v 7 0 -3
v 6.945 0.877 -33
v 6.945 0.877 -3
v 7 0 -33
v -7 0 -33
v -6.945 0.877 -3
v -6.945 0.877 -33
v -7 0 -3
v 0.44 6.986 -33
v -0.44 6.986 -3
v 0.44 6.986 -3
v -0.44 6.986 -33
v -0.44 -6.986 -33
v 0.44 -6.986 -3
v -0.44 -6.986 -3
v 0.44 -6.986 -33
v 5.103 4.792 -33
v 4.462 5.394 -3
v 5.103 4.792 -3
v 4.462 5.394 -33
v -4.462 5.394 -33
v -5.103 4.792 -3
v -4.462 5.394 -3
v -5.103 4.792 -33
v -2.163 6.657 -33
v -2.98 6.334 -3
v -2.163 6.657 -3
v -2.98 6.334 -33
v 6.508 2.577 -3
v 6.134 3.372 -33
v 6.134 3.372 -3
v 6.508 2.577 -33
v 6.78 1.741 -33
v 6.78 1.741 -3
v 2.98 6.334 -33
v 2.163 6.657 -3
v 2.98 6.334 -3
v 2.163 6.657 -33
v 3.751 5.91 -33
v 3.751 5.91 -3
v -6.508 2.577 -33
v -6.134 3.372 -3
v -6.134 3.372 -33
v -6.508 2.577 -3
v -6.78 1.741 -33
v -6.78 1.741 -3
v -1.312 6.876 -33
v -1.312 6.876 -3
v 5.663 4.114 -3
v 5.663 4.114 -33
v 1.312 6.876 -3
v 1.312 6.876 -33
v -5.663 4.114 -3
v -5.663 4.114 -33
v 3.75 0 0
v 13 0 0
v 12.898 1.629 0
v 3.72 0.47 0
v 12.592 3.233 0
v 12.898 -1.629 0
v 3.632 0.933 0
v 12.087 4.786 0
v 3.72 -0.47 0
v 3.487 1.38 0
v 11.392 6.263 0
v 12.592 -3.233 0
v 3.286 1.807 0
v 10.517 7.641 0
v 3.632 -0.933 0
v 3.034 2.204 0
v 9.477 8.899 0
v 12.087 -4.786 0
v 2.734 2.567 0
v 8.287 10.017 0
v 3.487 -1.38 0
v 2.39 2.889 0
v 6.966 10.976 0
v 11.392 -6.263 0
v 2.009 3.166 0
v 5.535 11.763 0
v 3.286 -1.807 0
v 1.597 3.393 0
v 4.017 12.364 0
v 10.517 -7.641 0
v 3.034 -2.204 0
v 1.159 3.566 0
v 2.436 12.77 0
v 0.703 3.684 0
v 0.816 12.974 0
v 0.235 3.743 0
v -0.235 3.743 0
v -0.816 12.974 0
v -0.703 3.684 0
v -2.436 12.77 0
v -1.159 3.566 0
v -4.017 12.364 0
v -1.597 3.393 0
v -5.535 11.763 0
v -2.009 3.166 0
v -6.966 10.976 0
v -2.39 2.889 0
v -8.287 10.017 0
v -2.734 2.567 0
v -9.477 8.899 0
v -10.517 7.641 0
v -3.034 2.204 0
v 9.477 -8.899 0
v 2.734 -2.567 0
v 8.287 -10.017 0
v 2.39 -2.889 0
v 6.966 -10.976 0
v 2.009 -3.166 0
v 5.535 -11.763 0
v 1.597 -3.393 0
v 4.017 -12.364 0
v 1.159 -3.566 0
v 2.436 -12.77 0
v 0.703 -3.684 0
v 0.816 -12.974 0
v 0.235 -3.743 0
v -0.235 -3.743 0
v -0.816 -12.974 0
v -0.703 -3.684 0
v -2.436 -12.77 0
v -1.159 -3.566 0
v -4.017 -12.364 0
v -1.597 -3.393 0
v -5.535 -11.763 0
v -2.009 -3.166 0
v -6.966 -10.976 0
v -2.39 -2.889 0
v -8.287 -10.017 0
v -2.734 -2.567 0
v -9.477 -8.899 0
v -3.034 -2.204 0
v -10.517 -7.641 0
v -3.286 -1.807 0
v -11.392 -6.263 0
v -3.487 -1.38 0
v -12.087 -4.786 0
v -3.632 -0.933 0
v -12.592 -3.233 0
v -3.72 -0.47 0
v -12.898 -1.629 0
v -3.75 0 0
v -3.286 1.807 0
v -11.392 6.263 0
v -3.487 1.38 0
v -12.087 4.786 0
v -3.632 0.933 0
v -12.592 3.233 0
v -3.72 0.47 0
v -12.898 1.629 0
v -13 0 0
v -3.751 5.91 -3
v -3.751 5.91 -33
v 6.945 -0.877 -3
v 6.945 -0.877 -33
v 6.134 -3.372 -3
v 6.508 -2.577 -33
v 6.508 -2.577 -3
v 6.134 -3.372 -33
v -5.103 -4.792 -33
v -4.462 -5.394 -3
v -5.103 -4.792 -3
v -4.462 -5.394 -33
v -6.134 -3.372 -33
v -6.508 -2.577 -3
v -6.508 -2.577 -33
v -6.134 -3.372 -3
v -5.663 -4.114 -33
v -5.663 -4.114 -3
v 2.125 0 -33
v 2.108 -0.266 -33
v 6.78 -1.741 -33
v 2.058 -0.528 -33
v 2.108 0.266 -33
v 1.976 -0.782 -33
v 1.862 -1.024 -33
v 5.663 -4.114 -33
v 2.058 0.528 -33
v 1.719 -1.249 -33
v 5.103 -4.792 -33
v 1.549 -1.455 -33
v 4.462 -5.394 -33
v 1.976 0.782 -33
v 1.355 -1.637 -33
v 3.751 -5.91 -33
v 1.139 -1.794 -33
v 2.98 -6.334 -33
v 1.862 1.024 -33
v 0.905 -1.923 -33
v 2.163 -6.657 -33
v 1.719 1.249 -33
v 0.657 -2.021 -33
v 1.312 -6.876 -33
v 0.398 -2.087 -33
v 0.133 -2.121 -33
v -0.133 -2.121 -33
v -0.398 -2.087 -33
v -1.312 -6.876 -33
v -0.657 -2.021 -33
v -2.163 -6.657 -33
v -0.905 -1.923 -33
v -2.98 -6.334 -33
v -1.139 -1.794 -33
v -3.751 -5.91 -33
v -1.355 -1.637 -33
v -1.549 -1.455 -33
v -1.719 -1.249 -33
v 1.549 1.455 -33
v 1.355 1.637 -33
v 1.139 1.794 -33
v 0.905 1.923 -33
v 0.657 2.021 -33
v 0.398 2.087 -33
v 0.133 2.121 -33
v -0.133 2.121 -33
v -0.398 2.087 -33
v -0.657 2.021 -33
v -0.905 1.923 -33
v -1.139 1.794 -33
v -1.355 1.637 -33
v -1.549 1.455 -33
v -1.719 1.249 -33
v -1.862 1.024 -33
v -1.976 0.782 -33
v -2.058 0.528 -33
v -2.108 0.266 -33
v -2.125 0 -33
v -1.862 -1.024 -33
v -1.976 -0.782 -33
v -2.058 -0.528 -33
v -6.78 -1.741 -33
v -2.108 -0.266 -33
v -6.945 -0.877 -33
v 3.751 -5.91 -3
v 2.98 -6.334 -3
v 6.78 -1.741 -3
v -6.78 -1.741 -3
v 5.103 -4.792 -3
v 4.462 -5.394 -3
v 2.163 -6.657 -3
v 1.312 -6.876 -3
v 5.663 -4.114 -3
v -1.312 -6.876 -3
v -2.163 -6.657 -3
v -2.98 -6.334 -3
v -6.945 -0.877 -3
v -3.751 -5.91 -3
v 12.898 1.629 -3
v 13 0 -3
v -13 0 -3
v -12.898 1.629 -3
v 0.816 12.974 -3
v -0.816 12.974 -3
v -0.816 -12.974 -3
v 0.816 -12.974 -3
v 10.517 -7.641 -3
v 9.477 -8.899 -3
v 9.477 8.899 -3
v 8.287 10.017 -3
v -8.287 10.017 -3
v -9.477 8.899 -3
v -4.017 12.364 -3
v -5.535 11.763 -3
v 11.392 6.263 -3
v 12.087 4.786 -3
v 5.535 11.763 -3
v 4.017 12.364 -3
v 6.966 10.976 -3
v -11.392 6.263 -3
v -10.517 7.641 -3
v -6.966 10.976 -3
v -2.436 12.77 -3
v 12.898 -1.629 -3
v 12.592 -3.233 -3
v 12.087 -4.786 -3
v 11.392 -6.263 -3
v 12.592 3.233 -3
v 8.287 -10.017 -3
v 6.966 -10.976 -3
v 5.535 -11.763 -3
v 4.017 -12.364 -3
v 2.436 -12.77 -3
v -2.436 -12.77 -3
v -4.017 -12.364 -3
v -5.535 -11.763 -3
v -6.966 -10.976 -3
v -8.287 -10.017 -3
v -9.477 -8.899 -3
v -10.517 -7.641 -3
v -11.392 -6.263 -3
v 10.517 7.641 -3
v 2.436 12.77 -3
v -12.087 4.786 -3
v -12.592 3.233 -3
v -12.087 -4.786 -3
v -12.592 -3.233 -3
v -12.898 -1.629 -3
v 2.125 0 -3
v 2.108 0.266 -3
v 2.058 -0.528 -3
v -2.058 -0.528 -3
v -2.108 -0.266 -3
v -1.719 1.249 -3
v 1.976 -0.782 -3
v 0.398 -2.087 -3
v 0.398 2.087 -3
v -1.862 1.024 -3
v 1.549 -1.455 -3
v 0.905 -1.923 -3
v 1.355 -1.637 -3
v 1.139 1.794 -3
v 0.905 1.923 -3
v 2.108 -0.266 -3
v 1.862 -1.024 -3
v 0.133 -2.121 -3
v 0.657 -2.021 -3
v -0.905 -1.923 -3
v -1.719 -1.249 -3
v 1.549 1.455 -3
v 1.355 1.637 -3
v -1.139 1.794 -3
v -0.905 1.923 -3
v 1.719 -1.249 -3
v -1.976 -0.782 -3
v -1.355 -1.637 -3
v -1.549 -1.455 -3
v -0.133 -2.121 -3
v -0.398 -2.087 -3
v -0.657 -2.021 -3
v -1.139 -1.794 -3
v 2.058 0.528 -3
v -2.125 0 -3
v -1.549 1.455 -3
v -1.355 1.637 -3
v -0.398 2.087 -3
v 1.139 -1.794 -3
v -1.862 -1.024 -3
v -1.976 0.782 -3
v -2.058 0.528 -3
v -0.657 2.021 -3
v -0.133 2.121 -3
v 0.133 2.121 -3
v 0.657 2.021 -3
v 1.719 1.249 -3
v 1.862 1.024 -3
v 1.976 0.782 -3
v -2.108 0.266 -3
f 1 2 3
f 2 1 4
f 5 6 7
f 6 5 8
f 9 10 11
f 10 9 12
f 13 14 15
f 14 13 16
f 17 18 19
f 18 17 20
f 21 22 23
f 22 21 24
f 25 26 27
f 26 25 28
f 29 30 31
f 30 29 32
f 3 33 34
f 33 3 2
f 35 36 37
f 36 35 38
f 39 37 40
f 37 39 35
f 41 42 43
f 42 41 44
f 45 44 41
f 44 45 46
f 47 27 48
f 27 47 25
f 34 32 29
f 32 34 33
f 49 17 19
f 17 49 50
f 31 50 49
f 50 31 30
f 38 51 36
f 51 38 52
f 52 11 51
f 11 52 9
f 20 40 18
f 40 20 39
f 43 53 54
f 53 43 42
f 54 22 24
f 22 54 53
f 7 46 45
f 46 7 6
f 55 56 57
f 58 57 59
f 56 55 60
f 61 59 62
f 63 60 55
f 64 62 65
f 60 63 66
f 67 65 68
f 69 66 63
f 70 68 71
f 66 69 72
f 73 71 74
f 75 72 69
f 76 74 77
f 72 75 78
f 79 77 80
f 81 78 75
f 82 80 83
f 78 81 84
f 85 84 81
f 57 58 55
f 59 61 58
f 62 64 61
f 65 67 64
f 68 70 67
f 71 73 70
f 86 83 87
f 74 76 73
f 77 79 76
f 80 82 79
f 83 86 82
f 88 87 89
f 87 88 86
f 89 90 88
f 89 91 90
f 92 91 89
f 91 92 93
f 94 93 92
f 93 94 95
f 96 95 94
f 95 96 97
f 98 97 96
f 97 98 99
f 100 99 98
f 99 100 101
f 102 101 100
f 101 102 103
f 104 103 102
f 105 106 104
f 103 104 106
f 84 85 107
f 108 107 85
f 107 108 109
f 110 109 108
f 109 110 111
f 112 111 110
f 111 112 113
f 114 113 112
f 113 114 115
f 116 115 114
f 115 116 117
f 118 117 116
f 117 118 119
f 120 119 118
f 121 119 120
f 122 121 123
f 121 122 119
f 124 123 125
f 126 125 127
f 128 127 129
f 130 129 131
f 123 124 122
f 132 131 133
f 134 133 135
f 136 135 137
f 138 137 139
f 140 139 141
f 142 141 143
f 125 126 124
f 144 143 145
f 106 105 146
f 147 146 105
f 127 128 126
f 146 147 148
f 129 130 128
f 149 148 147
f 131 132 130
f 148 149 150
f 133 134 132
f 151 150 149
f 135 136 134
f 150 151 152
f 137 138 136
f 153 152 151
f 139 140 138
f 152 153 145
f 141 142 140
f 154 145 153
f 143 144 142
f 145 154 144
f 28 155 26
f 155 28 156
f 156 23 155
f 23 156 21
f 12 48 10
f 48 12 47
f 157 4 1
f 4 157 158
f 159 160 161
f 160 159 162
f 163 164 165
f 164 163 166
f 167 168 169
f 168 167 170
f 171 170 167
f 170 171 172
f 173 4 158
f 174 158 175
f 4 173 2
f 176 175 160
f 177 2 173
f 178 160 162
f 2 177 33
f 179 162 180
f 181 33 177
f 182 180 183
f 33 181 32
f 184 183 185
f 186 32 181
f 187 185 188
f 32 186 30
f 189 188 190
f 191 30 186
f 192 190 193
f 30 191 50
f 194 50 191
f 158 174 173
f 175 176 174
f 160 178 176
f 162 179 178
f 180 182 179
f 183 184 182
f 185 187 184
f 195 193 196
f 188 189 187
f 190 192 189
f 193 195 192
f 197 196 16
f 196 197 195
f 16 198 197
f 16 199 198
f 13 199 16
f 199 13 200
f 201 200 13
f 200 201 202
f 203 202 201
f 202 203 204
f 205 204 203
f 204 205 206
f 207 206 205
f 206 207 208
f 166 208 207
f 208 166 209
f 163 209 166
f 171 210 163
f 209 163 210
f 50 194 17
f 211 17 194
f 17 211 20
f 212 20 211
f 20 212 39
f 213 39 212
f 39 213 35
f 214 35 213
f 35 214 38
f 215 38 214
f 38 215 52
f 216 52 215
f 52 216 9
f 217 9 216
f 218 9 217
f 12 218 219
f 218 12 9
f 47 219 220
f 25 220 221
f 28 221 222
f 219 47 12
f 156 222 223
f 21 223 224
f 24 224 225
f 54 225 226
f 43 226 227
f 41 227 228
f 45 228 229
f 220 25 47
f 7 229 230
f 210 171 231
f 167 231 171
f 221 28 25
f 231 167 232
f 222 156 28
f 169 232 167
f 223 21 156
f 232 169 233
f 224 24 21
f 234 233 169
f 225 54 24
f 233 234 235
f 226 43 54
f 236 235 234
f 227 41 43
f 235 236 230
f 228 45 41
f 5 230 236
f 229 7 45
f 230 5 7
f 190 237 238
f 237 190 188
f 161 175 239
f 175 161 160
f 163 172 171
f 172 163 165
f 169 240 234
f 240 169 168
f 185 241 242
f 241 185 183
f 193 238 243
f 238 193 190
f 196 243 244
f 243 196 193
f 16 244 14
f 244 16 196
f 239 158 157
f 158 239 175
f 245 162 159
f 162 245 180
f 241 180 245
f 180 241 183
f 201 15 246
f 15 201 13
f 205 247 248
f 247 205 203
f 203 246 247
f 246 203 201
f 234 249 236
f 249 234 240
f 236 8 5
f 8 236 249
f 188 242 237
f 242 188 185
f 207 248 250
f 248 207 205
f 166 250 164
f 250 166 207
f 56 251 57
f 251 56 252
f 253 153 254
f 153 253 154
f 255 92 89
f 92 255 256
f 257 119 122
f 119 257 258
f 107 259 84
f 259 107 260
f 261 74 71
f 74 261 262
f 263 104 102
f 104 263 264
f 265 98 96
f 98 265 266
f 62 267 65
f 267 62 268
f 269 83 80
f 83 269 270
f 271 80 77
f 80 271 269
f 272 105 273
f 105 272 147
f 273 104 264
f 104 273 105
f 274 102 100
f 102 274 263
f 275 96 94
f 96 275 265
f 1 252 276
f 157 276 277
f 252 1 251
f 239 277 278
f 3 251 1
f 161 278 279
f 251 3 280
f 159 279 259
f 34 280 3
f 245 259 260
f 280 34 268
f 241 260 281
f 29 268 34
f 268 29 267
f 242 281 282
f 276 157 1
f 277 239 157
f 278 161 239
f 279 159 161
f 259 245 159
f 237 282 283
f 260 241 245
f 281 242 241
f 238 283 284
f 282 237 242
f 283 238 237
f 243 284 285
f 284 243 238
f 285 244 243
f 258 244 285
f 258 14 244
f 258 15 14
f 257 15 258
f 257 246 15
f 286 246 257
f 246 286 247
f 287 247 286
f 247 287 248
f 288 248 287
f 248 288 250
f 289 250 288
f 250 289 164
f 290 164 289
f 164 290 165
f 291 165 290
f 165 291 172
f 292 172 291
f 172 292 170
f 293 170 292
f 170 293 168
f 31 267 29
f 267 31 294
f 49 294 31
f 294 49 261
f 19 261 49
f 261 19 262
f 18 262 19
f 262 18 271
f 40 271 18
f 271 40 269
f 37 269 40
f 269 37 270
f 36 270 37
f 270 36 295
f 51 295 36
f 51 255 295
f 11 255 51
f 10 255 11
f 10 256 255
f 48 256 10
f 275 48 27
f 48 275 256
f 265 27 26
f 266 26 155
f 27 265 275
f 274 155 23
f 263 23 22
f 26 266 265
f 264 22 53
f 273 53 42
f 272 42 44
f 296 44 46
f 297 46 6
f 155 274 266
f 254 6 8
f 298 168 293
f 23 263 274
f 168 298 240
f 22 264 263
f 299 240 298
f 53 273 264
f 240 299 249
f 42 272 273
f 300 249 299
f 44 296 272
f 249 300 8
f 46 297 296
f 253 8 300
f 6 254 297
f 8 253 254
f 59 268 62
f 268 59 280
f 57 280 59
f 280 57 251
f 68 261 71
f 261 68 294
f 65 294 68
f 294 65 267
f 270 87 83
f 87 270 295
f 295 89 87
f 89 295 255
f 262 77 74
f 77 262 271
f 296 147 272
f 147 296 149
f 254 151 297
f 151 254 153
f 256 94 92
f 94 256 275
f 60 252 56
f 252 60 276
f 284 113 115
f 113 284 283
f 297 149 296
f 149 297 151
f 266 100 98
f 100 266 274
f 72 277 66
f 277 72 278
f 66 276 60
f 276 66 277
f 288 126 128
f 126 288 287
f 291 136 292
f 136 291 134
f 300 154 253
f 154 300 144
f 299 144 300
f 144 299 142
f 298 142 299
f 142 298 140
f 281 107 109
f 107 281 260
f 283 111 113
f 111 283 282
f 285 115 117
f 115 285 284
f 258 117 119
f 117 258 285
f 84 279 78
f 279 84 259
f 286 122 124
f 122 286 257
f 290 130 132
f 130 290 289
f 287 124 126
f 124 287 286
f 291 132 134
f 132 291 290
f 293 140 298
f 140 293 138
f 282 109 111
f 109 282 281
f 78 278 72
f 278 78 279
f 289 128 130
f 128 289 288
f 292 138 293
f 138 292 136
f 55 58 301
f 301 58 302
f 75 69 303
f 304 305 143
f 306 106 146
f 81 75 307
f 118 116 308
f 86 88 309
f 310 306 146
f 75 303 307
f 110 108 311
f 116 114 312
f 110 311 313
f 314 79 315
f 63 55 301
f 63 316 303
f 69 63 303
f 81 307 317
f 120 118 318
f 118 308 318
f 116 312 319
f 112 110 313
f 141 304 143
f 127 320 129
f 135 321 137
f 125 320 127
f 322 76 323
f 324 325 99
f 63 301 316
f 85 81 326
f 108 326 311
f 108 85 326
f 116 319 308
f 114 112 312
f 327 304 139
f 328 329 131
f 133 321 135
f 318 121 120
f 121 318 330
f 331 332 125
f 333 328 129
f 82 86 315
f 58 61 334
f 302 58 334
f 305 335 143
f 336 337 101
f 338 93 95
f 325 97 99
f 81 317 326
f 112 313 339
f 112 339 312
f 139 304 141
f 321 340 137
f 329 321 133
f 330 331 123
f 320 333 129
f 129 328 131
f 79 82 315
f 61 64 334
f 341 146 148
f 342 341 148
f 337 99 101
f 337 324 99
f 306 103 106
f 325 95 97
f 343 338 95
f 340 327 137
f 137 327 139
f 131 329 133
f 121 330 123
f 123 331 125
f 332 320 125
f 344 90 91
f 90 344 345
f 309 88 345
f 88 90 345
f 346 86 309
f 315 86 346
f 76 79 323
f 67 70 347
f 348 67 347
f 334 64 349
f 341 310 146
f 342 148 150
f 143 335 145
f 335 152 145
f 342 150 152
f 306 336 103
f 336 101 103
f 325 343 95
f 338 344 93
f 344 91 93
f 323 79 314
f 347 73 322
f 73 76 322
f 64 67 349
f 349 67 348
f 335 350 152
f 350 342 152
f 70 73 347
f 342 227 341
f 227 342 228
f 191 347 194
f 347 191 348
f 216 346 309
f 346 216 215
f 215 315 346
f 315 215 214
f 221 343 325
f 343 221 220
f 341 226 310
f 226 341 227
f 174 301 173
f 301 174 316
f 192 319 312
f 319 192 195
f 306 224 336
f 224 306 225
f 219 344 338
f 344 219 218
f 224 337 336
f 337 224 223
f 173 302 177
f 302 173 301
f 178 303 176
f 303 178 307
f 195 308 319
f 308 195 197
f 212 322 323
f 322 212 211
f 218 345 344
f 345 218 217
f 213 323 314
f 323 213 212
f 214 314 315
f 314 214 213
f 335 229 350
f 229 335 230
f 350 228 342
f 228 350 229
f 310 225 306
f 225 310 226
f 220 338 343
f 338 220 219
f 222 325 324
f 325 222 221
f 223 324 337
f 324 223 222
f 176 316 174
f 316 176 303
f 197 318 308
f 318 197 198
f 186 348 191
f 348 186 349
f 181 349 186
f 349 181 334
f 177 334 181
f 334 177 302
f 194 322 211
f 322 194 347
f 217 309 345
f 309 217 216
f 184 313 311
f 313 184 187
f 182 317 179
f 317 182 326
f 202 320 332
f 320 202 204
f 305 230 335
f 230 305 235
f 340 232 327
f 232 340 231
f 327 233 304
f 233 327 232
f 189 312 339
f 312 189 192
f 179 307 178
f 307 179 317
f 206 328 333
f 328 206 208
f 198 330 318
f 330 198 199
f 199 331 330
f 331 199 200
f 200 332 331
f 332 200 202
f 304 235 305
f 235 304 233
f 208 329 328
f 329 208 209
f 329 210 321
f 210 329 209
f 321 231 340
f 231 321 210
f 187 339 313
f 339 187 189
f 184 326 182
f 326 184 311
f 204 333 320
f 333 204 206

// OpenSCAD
$fn = 50;


difference() {
	union() {
		translate(v = [0, 0, -33.0000000000]) {
			cylinder(h = 33, r = 7.0000000000);
		}
		translate(v = [0, 0, -3.0000000000]) {
			cylinder(h = 3, r = 13.0000000000);
		}
	}
	union() {
		translate(v = [0, 0, 0]) {
			rotate(a = [0, 0, 0]) {
				difference() {
					union() {
						#translate(v = [0, 0, -33.0000000000]) {
							cylinder(h = 33, r = 2.0000000000);
						}
						#translate(v = [0, 0, -3]) {
							cylinder(h = 3, r1 = 2.1250000000, r2 = 3.7500000000);
						}
						#translate(v = [0, 0, -33.0000000000]) {
							cylinder(h = 33, r = 2.1250000000);
						}
						#translate(v = [0, 0, -33.0000000000]) {
							cylinder(h = 33, r = 2.0000000000);
						}
					}
					union();
				}
			}
		}
	}
}
